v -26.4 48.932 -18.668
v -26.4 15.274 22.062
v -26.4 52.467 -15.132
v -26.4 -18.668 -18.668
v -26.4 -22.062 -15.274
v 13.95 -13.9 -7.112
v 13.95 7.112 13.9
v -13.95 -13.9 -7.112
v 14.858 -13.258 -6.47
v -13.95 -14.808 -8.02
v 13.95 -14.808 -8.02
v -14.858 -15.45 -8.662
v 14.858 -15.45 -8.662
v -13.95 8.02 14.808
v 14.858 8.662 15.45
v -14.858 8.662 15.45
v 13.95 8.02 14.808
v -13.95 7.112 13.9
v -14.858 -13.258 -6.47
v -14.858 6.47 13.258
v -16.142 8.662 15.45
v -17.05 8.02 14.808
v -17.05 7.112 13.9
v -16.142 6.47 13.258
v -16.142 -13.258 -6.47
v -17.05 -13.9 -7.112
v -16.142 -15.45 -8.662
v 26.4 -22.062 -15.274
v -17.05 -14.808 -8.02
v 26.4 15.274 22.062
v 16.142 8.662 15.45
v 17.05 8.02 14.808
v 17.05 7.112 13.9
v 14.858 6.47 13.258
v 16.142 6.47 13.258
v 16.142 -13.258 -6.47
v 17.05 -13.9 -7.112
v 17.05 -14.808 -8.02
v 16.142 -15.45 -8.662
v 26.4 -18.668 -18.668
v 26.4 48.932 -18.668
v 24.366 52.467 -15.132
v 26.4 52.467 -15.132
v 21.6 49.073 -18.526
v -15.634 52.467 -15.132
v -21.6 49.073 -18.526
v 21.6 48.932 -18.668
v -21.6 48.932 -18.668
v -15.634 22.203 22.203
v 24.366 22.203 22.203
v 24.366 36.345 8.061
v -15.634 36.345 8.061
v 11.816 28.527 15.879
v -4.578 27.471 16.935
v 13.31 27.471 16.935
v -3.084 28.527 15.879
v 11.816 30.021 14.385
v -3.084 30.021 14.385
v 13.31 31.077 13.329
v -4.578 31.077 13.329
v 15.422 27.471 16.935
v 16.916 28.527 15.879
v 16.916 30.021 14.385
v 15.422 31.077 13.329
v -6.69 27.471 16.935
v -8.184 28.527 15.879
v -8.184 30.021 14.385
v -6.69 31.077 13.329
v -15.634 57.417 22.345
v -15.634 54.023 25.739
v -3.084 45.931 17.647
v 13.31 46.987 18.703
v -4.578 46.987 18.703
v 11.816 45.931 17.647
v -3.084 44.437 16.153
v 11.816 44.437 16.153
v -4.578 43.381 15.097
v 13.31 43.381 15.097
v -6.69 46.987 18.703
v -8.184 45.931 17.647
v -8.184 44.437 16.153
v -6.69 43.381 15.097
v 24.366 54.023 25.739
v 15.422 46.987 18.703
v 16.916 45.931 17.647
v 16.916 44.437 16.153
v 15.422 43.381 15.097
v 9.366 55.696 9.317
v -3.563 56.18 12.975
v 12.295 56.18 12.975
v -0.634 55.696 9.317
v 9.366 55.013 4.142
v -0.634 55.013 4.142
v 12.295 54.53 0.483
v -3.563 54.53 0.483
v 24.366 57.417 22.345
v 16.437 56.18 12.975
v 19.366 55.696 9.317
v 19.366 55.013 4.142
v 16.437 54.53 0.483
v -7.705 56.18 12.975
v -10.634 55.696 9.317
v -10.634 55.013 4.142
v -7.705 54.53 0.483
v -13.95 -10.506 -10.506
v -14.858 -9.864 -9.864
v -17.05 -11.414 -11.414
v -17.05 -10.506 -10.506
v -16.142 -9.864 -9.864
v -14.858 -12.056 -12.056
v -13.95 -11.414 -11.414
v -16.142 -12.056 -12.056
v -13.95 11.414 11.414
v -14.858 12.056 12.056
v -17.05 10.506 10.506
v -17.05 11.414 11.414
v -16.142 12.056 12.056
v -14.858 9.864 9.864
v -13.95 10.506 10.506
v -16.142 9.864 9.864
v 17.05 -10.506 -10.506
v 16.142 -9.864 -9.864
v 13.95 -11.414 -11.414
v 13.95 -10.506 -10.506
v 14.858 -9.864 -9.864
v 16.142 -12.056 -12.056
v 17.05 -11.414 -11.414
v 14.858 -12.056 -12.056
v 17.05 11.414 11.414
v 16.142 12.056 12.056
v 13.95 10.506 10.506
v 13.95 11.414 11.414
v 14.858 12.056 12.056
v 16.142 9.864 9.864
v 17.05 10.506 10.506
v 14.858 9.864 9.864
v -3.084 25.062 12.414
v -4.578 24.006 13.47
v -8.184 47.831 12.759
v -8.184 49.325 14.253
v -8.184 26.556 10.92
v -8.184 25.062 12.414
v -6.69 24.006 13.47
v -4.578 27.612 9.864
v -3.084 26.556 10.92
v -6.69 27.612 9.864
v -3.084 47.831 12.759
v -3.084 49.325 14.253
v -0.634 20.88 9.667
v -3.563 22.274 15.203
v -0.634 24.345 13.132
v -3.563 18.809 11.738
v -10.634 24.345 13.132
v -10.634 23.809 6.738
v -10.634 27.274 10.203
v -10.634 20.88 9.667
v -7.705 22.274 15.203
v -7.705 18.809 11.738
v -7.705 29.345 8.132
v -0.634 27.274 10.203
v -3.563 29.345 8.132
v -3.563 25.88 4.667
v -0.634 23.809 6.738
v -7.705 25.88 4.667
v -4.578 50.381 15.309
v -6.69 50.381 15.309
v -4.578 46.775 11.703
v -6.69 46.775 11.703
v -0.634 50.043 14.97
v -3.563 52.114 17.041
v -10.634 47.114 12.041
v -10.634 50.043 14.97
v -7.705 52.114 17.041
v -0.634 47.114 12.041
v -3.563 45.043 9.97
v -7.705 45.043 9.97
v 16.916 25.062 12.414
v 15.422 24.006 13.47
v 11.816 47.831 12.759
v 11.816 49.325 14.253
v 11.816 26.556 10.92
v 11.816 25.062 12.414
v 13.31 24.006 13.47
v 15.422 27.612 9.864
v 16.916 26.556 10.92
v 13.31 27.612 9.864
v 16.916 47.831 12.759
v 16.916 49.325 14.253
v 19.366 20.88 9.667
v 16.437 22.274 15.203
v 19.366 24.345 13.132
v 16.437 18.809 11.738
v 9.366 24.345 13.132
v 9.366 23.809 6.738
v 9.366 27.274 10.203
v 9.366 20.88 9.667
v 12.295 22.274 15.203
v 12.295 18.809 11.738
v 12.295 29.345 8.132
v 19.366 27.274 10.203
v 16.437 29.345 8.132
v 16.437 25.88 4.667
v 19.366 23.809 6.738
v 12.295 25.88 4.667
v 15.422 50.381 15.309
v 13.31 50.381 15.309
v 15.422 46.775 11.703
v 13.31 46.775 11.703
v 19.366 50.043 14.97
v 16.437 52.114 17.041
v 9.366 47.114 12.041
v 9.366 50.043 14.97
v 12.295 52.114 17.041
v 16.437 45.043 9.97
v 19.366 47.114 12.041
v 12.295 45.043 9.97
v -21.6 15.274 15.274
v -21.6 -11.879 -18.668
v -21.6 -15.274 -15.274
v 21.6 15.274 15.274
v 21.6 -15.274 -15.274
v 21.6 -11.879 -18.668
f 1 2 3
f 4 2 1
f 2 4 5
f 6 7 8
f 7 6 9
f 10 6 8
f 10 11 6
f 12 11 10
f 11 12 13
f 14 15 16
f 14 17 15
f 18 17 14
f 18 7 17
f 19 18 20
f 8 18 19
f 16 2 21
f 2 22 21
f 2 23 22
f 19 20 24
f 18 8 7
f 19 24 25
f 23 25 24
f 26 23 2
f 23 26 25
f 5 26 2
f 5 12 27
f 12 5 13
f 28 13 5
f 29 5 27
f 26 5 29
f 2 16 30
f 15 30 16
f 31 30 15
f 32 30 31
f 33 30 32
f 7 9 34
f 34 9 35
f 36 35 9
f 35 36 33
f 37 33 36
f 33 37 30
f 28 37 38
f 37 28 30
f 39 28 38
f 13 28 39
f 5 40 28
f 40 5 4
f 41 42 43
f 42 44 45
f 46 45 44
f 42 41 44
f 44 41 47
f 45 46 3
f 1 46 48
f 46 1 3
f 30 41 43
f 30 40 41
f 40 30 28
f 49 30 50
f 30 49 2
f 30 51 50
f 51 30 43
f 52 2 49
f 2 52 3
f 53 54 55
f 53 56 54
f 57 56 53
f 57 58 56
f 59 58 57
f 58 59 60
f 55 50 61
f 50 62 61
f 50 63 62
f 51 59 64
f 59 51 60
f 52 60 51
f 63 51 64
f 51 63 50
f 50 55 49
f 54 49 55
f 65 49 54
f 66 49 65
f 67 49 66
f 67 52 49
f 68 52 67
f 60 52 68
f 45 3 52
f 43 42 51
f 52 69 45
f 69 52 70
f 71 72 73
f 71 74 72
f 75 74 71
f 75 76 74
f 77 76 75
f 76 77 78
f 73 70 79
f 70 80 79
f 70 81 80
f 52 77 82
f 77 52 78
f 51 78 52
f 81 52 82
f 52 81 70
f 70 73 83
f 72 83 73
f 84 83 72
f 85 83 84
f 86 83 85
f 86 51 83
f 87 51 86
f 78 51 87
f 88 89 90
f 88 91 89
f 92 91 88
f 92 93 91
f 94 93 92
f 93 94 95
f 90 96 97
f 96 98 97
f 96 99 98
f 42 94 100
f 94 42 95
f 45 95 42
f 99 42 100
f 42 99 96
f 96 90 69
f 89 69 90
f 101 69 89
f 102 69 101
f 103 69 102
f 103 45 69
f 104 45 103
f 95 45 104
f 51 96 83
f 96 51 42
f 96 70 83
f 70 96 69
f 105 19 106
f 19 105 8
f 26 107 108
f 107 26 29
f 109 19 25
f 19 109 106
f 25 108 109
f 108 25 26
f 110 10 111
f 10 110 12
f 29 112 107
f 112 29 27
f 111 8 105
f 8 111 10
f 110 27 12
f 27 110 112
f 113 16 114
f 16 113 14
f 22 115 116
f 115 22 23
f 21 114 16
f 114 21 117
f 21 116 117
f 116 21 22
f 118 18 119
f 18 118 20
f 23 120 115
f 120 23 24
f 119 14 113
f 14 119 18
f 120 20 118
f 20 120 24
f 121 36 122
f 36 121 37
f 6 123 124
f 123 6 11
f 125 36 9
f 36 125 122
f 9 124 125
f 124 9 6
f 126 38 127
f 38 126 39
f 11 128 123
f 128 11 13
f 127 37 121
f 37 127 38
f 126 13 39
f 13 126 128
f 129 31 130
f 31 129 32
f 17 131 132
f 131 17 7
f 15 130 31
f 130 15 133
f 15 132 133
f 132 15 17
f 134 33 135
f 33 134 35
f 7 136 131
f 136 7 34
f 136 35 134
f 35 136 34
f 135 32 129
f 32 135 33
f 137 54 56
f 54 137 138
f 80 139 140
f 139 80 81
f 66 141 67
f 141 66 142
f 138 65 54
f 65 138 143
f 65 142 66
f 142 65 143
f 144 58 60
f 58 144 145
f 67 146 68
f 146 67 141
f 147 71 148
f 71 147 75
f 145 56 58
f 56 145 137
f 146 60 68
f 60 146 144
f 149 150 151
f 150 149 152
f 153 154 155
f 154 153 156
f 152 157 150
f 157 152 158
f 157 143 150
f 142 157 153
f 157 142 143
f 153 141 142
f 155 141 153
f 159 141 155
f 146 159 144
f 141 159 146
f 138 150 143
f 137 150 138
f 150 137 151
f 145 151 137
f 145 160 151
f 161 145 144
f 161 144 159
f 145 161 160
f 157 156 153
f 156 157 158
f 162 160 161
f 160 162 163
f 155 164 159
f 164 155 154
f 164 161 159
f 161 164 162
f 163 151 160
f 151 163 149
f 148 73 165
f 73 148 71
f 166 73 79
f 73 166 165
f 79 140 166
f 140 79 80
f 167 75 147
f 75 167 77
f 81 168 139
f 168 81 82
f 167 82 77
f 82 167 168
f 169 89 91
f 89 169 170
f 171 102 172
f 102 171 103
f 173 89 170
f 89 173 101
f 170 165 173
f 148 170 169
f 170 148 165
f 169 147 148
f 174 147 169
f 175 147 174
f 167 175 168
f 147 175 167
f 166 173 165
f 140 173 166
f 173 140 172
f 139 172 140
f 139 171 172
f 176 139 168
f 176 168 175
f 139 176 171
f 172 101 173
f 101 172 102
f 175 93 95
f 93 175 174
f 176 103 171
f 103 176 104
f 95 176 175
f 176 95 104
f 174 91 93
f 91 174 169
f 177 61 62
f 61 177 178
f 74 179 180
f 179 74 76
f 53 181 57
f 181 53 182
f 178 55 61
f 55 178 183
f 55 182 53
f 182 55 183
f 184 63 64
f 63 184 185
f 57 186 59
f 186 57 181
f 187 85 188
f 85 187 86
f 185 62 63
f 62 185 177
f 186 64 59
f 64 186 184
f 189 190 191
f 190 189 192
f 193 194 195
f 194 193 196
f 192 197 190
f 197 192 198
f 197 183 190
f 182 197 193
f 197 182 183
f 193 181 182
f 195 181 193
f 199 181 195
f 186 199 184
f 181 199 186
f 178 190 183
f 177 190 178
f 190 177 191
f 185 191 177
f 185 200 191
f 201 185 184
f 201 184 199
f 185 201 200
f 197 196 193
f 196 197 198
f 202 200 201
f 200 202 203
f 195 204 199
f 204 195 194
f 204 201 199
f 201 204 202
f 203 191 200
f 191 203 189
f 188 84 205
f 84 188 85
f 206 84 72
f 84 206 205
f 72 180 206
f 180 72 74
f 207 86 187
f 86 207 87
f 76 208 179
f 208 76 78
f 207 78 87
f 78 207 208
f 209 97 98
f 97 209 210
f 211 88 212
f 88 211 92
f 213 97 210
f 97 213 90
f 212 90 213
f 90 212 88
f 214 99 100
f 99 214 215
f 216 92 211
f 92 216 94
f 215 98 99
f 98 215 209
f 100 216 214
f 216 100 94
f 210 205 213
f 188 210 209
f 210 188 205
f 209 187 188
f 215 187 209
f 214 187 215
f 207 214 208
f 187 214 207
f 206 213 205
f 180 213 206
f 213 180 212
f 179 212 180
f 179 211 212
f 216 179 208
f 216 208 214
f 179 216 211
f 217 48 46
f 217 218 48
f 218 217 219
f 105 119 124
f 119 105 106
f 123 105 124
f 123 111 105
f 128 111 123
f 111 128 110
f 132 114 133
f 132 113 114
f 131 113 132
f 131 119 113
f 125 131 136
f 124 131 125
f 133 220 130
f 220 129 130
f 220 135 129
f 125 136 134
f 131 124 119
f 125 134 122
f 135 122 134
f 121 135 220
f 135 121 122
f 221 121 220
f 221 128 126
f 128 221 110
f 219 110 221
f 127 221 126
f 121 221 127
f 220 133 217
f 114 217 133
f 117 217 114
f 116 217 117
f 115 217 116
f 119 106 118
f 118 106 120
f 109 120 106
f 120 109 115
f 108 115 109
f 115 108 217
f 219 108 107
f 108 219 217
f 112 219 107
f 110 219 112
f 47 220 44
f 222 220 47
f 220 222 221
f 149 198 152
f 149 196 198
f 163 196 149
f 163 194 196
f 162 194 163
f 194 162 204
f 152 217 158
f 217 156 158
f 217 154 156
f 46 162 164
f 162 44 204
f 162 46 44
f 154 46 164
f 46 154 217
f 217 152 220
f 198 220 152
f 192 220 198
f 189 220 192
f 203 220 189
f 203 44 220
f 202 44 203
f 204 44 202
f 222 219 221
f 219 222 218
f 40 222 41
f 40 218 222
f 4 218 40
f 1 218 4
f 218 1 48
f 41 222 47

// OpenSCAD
// file: util.scad
function accurate_diam(diam,sides) = 1 / cos(180/sides) / 2 * diam;

module hole(diam,len,sides=8) {
  rotate([0,0,180/sides]) {
    cylinder(r=accurate_diam(diam,sides),h=len,center=true,$fn=sides);
  }
}

module accurate_circle(diam,sides=8) {
  rotate([0,0,180/sides]) {
    circle(r=accurate_diam(diam,sides),$fn=sides);
  }
}

module debug_axes() {
  color("red") {
    translate([50,0,0]) cube([100,.2,.2],center=true);
    translate([0,50,0]) cube([.2,100,.2],center=true);
    translate([0,0,50]) cube([.2,.2,100],center=true);
  }
}

module ring(id,thickness,height,fn=16) {
  od = id + thickness;
  linear_extrude(height=height,center=true) {
    difference() {
      accurate_circle(od,fn);
      accurate_circle(id,fn);
    }
  }
}

module rounded_square(width,depth,diam,fn=resolution) {
  pos_x = width/2-diam/2;
  pos_y = depth/2-diam/2;

  hull() {
    for(x=[left,right]) {
      for(y=[front,rear]) {
        translate([x*pos_x,y*pos_y,0]) {
          accurate_circle(diam,fn);
        }
      }
    }
  }
}

module rounded_cube(width,depth,height,diam,fn=resolution) {
  linear_extrude(height=height,center=true,convexity=3) {
    rounded_square(width,depth,diam,fn);
  }
}
// main file
include <sketch.scad>;

rail_length = 120;

motor_mount_thickness = extrude_width*12;
test_motor_tolerance = 0.1;
test_motor_mount_overall_width = motor_side+(test_motor_tolerance+motor_mount_thickness)*2;
test_motor_mount_overall_depth = motor_side+(test_motor_tolerance+motor_mount_thickness)*2;
test_motor_mount_overall_height = motor_len+motor_mount_thickness*2;

test_motor_pos_y = -rail_length/2-test_motor_mount_overall_depth/2-0.1-5;
test_motor_pos_x = x_carriage_belt_spacing/2-line_pulley_diam/2-line_thickness/2;

module motor_bracket() {
  extrusion_brace_depth = 25;
  m5_bolt_head_height = 5;
  m5_bolt_head_diam = 10;

  module body() {
    hull() {
      translate([0,0,-test_motor_mount_overall_height/2+motor_mount_thickness]) {
        cube([test_motor_mount_overall_width,test_motor_mount_overall_depth,test_motor_mount_overall_height],center=true);
      }
      translate([-test_motor_pos_x,test_motor_mount_overall_depth/2,-extrusion_width/2]) {
        cube([extrusion_height,10,extrusion_width],center=true);
      }
    }
    hull() {
      translate([-test_motor_pos_x,test_motor_mount_overall_depth/2+5,-extrusion_width-motor_mount_thickness/2]) {
        cube([extrusion_height,extrusion_brace_depth*2,motor_mount_thickness],center=true);
      }
      translate([-test_motor_pos_x,0,-test_motor_mount_overall_height+motor_mount_thickness+1]) {
        cube([extrusion_height,test_motor_mount_overall_depth,2],center=true);
      }
    }
  }

  module holes() {
    for(x=[left,right]) {
      for(y=[front,rear]) {
        translate([x*(motor_hole_spacing/2),y*(motor_hole_spacing/2),0]) {
          hole(3.1,motor_len*3,8);
        }
      }
    }

    // room for the motor
    translate([0,0,-motor_len]) {
      cube([motor_side+test_motor_tolerance*2,motor_side+test_motor_tolerance*2,motor_len*2],center=true);
    }

    // make printable at an angle
    translate([0,-test_motor_mount_overall_depth/2-motor_mount_thickness,motor_mount_thickness]) {
      rotate([-45,0,0]) {
        translate([0,test_motor_mount_overall_depth,-test_motor_mount_overall_height]) {
          cube([test_motor_mount_overall_width*2,test_motor_mount_overall_depth*2,test_motor_mount_overall_height*2],center=true);
        }
      }
    }

    // mount to the extrusion
    translate([-test_motor_pos_x,0,-extrusion_width/2]) {
      for(x=[left,right]) {
        // bolt into the extrusion end
        translate([x*extrusion_height/4,0,0]) {
          rotate([90,0,0]) {
            hole(5.1,motor_side*2,8);

            // room for bolt head
            hole(m5_bolt_head_diam,motor_side+m5_bolt_head_height*2,8);
          }
        }

        translate([x*extrusion_height/4,test_motor_mount_overall_depth/2+5+extrusion_brace_depth/2,-extrusion_width/2]) {
          hole(5.1,motor_side*2,8);

          translate([0,0,-motor_mount_thickness-motor_len/2]) {
            hole(m5_bolt_head_diam,motor_len,8);
          }
        }
      }
    }
  }

  difference() {
    body();
    holes();
  }
}

//translate([0,-rail_length/2,motor_len*2]) {
  rotate([45,0,0]) {
    motor_bracket();
  }
//}

/*

translate([0,0,0]) {
  rotate([0,0,-90]) {
    x_carriage_printed();
  }
}
rotate([0,0,-90]) {
  rotate([0,90,0]) {
    color("silver") extrusion(rail_length);
  }
}
translate([test_motor_pos_x,test_motor_pos_y,extrusion_width/2]) {
  motor_bracket();
  % motor_nema17();
}
*/
